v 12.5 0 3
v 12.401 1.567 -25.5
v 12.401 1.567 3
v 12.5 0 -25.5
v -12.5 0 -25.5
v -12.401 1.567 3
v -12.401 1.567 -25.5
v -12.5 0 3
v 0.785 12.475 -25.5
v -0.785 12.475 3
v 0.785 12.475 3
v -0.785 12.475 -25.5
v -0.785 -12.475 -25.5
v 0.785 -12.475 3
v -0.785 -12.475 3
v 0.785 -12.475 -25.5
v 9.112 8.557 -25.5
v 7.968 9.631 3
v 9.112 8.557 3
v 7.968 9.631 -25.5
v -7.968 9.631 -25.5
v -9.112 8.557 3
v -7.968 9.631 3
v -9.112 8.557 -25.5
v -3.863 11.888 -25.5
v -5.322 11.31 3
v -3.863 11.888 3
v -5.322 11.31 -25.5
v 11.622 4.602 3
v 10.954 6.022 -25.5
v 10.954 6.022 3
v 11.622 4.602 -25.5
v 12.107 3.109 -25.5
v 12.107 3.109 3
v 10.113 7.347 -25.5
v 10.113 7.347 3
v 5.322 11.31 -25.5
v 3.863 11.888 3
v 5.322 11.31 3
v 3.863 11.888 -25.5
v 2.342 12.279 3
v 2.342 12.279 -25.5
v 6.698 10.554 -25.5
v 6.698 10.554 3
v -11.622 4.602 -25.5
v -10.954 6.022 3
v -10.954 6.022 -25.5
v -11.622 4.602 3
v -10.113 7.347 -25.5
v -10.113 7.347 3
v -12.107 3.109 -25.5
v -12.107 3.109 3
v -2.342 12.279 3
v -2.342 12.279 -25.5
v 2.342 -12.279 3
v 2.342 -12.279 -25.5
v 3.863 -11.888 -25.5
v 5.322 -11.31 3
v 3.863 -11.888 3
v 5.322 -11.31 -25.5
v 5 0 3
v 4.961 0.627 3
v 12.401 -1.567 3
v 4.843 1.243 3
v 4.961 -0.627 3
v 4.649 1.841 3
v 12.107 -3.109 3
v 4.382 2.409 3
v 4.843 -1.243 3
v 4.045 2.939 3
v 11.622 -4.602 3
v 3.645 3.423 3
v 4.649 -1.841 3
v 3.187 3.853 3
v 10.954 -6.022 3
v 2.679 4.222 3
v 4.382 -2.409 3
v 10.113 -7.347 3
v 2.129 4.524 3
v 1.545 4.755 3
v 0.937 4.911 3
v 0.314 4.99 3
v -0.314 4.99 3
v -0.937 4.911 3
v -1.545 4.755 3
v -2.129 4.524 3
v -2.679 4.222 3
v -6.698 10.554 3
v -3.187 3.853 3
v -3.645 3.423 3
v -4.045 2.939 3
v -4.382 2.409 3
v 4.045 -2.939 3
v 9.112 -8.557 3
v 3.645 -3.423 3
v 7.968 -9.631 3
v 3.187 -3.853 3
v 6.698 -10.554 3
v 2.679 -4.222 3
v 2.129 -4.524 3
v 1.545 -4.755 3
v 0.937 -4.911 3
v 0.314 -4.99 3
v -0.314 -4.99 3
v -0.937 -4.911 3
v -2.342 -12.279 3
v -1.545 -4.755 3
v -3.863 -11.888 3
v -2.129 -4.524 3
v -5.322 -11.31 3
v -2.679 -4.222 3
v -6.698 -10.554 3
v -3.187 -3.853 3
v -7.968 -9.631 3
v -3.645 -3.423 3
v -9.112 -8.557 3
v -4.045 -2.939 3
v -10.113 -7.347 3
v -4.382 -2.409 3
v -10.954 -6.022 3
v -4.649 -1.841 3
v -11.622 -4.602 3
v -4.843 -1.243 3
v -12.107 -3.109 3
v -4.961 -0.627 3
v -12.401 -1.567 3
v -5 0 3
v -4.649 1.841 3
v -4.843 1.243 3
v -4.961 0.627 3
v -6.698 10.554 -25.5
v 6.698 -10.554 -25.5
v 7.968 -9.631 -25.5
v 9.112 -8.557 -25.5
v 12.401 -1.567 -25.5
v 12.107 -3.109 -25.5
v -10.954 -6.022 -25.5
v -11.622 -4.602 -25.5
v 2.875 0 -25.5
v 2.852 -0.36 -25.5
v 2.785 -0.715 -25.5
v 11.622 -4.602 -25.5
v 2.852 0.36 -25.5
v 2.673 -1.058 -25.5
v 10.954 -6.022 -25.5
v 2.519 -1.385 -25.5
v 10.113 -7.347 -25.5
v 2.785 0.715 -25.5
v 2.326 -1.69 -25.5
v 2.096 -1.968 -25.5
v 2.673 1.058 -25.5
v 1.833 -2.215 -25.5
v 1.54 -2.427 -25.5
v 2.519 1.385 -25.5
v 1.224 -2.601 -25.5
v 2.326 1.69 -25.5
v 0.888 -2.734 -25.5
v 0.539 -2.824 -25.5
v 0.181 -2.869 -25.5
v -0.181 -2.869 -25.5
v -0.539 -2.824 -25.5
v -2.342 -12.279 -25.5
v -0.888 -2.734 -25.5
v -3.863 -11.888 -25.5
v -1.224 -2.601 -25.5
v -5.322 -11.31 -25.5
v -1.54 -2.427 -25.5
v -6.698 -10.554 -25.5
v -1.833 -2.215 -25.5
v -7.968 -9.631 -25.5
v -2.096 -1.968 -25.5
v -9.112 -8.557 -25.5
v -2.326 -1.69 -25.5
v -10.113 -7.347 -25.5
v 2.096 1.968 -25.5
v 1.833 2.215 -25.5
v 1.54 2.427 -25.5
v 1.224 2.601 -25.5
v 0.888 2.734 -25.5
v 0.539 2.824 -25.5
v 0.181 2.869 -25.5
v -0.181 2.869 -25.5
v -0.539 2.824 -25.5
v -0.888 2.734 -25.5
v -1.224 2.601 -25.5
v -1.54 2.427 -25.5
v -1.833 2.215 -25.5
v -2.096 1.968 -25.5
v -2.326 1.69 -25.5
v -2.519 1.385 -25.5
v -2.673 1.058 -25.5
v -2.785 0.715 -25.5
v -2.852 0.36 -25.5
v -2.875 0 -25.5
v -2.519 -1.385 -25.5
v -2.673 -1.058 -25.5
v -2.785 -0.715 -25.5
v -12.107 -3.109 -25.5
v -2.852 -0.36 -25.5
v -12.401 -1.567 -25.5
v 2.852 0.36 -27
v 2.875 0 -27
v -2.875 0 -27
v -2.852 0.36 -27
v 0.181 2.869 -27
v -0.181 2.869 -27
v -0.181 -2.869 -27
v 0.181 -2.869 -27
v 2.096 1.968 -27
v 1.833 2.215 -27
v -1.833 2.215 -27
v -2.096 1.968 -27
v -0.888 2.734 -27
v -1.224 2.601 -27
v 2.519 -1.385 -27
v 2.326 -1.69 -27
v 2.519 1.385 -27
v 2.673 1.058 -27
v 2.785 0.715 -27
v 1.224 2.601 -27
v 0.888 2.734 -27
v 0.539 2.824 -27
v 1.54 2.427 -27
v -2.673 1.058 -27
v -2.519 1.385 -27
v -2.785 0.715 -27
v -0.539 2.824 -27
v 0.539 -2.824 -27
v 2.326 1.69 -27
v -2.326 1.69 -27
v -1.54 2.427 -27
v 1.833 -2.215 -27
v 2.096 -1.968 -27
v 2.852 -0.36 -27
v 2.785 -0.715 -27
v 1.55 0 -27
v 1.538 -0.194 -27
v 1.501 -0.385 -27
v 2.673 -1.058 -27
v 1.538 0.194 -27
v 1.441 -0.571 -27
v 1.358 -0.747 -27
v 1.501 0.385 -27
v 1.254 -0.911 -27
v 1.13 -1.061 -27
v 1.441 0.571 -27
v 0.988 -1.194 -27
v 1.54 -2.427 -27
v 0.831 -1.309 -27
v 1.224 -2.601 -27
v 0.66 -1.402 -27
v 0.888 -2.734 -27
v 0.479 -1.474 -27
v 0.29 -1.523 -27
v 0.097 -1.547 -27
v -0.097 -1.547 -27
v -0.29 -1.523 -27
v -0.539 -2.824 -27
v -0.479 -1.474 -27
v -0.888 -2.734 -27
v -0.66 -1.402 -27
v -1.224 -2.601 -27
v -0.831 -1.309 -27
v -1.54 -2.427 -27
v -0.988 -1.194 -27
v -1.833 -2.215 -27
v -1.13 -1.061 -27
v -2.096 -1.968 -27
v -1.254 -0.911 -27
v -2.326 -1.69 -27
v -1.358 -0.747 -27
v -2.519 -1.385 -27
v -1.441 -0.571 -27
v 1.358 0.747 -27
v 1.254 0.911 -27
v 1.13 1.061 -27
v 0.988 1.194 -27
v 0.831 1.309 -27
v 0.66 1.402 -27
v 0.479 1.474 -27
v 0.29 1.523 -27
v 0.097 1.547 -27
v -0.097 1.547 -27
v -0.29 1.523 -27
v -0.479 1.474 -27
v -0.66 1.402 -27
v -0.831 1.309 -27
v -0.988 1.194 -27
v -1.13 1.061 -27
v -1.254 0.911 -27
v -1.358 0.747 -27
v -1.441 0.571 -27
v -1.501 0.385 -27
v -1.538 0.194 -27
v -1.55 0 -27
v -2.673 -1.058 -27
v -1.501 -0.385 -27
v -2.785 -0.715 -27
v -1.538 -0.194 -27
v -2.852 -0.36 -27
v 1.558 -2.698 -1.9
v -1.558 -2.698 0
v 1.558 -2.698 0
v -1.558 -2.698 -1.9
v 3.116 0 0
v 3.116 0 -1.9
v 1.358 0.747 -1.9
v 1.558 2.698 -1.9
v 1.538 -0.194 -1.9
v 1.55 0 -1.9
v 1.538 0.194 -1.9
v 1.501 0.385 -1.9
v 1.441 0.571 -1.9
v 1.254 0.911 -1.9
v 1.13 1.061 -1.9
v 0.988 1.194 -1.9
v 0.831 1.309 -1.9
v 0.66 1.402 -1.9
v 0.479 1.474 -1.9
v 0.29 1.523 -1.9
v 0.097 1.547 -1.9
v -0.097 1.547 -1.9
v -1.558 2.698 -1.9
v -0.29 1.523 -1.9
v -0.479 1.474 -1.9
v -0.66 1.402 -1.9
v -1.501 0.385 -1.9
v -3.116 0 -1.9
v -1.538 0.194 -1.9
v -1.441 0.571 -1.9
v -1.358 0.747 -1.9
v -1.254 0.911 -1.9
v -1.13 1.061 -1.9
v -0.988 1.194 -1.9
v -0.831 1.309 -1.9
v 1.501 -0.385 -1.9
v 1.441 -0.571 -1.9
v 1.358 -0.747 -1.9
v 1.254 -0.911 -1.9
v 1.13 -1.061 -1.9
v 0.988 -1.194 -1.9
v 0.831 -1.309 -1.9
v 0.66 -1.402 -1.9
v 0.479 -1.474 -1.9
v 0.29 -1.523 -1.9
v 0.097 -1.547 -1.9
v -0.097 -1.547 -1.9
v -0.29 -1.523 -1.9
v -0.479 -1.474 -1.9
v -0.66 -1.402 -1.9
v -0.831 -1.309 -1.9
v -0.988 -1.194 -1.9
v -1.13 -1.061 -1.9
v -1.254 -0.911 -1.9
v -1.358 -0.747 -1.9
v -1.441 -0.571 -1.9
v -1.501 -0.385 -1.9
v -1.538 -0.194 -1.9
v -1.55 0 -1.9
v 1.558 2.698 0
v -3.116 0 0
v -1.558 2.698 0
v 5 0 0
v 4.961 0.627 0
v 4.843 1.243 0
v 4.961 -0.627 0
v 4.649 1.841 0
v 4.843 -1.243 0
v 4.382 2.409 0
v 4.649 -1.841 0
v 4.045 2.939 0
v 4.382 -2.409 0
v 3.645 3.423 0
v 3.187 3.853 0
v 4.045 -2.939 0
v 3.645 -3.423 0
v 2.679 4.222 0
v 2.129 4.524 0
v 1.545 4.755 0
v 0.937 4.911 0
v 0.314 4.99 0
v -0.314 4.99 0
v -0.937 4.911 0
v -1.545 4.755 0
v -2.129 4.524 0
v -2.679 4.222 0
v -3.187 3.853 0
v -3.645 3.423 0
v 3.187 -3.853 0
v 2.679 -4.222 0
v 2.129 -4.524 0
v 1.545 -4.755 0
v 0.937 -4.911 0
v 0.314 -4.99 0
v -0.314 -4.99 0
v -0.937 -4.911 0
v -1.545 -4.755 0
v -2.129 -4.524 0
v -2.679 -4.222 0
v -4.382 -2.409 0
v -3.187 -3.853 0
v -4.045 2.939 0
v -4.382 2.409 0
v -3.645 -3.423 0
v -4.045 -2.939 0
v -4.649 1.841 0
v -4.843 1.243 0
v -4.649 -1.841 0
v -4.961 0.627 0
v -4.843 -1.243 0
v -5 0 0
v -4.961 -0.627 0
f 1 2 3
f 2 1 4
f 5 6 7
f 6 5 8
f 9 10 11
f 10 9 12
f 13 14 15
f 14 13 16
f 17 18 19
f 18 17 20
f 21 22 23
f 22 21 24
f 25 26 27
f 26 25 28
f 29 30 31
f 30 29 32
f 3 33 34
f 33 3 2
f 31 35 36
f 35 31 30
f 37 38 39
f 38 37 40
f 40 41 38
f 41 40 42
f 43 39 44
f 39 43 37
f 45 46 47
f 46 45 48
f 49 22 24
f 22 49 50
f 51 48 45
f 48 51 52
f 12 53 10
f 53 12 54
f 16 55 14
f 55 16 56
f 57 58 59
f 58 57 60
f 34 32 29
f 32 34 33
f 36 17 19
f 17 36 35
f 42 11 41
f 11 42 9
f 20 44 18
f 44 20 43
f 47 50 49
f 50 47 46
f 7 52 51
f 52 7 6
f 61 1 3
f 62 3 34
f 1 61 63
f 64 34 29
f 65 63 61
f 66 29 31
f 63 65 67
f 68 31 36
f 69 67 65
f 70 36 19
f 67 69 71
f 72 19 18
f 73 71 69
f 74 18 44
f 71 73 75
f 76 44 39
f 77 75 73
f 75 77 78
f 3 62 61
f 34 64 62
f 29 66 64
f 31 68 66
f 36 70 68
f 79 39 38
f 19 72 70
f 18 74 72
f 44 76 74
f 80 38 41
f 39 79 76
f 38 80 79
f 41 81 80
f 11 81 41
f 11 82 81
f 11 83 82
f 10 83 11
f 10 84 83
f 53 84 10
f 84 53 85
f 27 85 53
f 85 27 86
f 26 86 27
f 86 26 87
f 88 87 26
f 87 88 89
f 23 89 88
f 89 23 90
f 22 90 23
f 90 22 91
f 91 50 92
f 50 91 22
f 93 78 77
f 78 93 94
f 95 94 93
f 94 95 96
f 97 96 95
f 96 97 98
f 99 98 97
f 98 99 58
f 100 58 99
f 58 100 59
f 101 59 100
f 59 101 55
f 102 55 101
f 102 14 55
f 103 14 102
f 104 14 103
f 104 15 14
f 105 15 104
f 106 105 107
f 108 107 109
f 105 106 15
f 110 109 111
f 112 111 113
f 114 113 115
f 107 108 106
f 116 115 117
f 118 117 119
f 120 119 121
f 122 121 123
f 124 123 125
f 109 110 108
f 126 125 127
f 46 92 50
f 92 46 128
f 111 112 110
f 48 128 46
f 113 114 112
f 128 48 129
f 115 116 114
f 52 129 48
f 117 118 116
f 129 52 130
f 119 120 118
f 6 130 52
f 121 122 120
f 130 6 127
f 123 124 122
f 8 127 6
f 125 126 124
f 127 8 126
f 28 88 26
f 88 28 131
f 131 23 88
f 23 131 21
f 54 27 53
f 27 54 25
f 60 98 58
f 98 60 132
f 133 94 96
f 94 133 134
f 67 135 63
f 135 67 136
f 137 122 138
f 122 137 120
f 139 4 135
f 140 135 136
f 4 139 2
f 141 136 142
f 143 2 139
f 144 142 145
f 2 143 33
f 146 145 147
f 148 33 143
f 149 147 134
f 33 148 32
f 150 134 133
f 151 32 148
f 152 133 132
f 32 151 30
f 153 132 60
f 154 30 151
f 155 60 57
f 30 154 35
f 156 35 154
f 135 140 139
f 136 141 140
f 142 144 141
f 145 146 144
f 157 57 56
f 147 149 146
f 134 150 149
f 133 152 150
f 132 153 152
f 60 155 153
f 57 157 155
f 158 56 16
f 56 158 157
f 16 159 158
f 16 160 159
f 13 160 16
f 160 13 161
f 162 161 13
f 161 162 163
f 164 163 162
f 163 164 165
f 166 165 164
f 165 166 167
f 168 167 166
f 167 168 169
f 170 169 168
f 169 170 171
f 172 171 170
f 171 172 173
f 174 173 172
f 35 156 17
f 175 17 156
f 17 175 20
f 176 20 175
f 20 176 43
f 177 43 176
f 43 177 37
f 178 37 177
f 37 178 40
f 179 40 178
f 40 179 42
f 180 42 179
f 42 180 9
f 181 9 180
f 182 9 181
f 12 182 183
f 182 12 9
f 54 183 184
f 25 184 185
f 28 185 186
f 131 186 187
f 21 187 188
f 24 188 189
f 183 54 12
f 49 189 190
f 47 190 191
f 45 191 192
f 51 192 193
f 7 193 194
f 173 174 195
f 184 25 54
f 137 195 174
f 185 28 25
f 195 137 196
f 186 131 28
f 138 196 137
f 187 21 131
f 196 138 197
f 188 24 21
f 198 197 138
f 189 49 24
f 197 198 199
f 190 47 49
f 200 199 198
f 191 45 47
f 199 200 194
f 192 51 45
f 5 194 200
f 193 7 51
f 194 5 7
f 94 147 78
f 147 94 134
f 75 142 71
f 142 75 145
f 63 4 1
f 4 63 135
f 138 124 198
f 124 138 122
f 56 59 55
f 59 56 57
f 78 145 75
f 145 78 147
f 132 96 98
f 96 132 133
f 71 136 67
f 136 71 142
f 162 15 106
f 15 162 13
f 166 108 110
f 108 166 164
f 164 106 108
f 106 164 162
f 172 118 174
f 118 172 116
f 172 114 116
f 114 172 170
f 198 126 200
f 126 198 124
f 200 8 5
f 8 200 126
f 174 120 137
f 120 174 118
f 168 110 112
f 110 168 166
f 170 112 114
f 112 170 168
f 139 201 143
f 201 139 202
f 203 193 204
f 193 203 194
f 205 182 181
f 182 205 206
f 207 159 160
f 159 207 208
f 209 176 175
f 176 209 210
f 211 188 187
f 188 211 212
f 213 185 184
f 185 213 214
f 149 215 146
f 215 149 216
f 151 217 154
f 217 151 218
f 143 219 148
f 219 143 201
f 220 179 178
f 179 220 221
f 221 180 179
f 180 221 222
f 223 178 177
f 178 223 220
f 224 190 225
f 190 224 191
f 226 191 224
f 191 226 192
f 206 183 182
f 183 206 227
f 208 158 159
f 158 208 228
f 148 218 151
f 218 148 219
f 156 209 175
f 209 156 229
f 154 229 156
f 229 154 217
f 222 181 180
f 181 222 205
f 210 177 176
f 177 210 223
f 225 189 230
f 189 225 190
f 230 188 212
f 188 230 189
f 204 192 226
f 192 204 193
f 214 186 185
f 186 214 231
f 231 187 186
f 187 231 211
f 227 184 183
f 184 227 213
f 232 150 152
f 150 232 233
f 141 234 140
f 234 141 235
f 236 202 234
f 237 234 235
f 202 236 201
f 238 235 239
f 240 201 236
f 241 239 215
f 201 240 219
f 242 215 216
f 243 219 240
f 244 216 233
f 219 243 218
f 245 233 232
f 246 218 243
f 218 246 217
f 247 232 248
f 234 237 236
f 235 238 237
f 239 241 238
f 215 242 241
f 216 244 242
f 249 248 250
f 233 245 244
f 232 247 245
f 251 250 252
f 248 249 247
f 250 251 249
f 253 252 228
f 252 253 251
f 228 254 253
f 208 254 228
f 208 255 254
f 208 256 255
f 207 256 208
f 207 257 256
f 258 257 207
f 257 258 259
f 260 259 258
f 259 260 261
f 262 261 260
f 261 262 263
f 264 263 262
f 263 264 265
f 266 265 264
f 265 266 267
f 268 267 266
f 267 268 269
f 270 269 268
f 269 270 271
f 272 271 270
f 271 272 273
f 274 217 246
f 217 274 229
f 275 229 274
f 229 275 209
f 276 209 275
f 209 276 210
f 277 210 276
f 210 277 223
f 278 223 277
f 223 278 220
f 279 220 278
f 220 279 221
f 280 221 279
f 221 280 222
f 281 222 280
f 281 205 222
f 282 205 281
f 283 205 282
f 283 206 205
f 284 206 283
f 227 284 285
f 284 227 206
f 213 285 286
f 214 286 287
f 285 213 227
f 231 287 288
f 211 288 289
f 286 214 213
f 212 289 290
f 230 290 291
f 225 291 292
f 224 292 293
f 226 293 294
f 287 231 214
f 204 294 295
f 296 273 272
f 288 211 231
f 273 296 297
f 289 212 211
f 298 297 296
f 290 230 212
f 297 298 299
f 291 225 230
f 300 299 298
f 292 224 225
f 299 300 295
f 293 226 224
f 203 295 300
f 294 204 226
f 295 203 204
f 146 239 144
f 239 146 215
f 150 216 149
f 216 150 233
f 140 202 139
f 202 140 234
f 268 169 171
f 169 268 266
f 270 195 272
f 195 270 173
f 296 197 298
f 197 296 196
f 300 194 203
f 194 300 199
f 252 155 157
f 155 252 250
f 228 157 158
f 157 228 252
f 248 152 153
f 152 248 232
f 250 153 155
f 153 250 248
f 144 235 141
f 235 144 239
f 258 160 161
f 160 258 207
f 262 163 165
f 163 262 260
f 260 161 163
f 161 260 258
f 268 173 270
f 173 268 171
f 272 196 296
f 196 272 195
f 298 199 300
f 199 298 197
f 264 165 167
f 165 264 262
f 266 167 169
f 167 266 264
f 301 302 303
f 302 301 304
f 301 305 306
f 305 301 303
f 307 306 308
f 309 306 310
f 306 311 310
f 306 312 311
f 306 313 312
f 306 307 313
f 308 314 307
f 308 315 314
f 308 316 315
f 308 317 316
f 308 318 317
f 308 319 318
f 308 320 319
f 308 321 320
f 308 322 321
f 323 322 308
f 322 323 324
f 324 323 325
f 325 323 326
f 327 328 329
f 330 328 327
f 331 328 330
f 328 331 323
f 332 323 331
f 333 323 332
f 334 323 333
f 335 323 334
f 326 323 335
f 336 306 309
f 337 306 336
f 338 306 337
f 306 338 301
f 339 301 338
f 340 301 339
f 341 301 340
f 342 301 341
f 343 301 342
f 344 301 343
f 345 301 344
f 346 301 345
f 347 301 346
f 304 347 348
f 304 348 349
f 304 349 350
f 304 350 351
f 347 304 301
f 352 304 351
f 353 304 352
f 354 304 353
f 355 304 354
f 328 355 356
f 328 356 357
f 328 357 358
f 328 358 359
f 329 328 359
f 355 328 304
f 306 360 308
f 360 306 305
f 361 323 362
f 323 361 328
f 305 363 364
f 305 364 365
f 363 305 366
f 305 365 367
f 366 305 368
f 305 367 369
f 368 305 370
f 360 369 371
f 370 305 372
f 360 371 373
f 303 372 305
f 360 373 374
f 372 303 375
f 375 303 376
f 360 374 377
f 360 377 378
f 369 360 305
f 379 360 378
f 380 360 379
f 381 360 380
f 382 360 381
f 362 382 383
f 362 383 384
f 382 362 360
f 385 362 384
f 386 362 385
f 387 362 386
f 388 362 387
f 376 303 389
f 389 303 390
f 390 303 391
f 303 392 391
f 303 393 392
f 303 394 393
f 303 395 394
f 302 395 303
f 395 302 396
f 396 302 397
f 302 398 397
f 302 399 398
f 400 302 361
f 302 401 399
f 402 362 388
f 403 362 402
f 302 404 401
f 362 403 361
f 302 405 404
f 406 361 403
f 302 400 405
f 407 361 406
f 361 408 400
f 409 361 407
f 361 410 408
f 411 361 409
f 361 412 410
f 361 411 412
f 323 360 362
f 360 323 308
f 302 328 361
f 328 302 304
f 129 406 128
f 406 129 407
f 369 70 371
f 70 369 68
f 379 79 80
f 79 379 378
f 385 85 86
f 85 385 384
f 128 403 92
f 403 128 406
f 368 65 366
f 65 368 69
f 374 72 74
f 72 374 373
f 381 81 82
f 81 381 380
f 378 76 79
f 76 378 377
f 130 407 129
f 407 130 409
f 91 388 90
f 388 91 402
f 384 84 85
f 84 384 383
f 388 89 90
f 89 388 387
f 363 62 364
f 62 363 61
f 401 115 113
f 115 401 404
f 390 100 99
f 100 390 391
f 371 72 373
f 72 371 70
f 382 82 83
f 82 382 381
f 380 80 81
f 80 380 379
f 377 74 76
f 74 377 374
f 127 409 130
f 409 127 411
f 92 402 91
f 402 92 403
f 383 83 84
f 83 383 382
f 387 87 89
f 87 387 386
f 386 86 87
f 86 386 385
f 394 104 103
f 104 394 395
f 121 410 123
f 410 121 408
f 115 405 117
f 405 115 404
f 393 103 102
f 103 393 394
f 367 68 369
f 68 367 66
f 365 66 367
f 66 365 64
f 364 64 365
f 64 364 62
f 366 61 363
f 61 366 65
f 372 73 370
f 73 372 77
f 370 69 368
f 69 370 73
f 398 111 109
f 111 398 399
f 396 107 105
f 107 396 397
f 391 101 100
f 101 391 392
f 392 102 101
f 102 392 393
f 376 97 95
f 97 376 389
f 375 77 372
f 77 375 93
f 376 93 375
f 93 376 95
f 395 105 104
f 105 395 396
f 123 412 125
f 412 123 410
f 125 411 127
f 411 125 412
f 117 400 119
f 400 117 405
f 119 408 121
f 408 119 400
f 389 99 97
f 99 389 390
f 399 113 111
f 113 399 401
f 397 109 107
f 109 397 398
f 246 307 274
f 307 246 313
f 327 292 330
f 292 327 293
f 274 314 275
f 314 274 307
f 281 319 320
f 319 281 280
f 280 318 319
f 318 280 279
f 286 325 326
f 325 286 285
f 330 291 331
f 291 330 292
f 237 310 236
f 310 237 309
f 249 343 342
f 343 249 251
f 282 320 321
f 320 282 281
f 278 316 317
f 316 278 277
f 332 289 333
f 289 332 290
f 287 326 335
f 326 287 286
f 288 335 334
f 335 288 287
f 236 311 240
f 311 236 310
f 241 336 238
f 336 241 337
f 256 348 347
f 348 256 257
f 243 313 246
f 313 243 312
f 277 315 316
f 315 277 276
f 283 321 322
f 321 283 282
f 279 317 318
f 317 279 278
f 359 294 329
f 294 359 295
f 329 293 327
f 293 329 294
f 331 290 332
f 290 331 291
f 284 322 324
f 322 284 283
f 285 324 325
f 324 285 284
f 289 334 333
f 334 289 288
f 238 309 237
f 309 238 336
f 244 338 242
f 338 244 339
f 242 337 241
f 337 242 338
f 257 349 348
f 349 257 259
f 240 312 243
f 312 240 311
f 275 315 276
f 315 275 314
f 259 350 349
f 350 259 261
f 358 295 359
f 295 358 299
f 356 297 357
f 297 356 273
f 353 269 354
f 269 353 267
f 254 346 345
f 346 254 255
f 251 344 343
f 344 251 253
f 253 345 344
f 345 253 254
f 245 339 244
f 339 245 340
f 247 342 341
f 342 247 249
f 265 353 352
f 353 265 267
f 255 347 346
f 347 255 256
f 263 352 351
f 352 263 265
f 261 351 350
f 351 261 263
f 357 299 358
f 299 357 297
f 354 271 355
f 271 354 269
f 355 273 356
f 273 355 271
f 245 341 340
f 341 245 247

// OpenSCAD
$fn = 50;


difference() {
	union() {
		translate(v = [0, 0, -25.5000000000]) {
			cylinder(h = 28.5000000000, r = 12.5000000000);
		}
		#translate(v = [0, 0, -27.0000000000]) {
			cylinder(h = 27, r = 2.8750000000);
		}
	}
	union() {
		translate(v = [0, 0, 0]) {
			rotate(a = [0, 0, 0]) {
				difference() {
					union() {
						translate(v = [0, 0, -1.9000000000]) {
							linear_extrude(height = 1.9000000000) {
								polygon(points = [[3.1158000000, 0.0000000000], [1.5579000000, 2.6983619531], [-1.5579000000, 2.6983619531], [-3.1158000000, 0.0000000000], [-1.5579000000, -2.6983619531], [1.5579000000, -2.6983619531]]);
							}
						}
					}
					union();
				}
			}
		}
		#cylinder(h = 3, r = 5.0000000000);
		#translate(v = [0, 0, -100.0000000000]) {
			cylinder(h = 200, r = 1.5500000000);
		}
	}
}
